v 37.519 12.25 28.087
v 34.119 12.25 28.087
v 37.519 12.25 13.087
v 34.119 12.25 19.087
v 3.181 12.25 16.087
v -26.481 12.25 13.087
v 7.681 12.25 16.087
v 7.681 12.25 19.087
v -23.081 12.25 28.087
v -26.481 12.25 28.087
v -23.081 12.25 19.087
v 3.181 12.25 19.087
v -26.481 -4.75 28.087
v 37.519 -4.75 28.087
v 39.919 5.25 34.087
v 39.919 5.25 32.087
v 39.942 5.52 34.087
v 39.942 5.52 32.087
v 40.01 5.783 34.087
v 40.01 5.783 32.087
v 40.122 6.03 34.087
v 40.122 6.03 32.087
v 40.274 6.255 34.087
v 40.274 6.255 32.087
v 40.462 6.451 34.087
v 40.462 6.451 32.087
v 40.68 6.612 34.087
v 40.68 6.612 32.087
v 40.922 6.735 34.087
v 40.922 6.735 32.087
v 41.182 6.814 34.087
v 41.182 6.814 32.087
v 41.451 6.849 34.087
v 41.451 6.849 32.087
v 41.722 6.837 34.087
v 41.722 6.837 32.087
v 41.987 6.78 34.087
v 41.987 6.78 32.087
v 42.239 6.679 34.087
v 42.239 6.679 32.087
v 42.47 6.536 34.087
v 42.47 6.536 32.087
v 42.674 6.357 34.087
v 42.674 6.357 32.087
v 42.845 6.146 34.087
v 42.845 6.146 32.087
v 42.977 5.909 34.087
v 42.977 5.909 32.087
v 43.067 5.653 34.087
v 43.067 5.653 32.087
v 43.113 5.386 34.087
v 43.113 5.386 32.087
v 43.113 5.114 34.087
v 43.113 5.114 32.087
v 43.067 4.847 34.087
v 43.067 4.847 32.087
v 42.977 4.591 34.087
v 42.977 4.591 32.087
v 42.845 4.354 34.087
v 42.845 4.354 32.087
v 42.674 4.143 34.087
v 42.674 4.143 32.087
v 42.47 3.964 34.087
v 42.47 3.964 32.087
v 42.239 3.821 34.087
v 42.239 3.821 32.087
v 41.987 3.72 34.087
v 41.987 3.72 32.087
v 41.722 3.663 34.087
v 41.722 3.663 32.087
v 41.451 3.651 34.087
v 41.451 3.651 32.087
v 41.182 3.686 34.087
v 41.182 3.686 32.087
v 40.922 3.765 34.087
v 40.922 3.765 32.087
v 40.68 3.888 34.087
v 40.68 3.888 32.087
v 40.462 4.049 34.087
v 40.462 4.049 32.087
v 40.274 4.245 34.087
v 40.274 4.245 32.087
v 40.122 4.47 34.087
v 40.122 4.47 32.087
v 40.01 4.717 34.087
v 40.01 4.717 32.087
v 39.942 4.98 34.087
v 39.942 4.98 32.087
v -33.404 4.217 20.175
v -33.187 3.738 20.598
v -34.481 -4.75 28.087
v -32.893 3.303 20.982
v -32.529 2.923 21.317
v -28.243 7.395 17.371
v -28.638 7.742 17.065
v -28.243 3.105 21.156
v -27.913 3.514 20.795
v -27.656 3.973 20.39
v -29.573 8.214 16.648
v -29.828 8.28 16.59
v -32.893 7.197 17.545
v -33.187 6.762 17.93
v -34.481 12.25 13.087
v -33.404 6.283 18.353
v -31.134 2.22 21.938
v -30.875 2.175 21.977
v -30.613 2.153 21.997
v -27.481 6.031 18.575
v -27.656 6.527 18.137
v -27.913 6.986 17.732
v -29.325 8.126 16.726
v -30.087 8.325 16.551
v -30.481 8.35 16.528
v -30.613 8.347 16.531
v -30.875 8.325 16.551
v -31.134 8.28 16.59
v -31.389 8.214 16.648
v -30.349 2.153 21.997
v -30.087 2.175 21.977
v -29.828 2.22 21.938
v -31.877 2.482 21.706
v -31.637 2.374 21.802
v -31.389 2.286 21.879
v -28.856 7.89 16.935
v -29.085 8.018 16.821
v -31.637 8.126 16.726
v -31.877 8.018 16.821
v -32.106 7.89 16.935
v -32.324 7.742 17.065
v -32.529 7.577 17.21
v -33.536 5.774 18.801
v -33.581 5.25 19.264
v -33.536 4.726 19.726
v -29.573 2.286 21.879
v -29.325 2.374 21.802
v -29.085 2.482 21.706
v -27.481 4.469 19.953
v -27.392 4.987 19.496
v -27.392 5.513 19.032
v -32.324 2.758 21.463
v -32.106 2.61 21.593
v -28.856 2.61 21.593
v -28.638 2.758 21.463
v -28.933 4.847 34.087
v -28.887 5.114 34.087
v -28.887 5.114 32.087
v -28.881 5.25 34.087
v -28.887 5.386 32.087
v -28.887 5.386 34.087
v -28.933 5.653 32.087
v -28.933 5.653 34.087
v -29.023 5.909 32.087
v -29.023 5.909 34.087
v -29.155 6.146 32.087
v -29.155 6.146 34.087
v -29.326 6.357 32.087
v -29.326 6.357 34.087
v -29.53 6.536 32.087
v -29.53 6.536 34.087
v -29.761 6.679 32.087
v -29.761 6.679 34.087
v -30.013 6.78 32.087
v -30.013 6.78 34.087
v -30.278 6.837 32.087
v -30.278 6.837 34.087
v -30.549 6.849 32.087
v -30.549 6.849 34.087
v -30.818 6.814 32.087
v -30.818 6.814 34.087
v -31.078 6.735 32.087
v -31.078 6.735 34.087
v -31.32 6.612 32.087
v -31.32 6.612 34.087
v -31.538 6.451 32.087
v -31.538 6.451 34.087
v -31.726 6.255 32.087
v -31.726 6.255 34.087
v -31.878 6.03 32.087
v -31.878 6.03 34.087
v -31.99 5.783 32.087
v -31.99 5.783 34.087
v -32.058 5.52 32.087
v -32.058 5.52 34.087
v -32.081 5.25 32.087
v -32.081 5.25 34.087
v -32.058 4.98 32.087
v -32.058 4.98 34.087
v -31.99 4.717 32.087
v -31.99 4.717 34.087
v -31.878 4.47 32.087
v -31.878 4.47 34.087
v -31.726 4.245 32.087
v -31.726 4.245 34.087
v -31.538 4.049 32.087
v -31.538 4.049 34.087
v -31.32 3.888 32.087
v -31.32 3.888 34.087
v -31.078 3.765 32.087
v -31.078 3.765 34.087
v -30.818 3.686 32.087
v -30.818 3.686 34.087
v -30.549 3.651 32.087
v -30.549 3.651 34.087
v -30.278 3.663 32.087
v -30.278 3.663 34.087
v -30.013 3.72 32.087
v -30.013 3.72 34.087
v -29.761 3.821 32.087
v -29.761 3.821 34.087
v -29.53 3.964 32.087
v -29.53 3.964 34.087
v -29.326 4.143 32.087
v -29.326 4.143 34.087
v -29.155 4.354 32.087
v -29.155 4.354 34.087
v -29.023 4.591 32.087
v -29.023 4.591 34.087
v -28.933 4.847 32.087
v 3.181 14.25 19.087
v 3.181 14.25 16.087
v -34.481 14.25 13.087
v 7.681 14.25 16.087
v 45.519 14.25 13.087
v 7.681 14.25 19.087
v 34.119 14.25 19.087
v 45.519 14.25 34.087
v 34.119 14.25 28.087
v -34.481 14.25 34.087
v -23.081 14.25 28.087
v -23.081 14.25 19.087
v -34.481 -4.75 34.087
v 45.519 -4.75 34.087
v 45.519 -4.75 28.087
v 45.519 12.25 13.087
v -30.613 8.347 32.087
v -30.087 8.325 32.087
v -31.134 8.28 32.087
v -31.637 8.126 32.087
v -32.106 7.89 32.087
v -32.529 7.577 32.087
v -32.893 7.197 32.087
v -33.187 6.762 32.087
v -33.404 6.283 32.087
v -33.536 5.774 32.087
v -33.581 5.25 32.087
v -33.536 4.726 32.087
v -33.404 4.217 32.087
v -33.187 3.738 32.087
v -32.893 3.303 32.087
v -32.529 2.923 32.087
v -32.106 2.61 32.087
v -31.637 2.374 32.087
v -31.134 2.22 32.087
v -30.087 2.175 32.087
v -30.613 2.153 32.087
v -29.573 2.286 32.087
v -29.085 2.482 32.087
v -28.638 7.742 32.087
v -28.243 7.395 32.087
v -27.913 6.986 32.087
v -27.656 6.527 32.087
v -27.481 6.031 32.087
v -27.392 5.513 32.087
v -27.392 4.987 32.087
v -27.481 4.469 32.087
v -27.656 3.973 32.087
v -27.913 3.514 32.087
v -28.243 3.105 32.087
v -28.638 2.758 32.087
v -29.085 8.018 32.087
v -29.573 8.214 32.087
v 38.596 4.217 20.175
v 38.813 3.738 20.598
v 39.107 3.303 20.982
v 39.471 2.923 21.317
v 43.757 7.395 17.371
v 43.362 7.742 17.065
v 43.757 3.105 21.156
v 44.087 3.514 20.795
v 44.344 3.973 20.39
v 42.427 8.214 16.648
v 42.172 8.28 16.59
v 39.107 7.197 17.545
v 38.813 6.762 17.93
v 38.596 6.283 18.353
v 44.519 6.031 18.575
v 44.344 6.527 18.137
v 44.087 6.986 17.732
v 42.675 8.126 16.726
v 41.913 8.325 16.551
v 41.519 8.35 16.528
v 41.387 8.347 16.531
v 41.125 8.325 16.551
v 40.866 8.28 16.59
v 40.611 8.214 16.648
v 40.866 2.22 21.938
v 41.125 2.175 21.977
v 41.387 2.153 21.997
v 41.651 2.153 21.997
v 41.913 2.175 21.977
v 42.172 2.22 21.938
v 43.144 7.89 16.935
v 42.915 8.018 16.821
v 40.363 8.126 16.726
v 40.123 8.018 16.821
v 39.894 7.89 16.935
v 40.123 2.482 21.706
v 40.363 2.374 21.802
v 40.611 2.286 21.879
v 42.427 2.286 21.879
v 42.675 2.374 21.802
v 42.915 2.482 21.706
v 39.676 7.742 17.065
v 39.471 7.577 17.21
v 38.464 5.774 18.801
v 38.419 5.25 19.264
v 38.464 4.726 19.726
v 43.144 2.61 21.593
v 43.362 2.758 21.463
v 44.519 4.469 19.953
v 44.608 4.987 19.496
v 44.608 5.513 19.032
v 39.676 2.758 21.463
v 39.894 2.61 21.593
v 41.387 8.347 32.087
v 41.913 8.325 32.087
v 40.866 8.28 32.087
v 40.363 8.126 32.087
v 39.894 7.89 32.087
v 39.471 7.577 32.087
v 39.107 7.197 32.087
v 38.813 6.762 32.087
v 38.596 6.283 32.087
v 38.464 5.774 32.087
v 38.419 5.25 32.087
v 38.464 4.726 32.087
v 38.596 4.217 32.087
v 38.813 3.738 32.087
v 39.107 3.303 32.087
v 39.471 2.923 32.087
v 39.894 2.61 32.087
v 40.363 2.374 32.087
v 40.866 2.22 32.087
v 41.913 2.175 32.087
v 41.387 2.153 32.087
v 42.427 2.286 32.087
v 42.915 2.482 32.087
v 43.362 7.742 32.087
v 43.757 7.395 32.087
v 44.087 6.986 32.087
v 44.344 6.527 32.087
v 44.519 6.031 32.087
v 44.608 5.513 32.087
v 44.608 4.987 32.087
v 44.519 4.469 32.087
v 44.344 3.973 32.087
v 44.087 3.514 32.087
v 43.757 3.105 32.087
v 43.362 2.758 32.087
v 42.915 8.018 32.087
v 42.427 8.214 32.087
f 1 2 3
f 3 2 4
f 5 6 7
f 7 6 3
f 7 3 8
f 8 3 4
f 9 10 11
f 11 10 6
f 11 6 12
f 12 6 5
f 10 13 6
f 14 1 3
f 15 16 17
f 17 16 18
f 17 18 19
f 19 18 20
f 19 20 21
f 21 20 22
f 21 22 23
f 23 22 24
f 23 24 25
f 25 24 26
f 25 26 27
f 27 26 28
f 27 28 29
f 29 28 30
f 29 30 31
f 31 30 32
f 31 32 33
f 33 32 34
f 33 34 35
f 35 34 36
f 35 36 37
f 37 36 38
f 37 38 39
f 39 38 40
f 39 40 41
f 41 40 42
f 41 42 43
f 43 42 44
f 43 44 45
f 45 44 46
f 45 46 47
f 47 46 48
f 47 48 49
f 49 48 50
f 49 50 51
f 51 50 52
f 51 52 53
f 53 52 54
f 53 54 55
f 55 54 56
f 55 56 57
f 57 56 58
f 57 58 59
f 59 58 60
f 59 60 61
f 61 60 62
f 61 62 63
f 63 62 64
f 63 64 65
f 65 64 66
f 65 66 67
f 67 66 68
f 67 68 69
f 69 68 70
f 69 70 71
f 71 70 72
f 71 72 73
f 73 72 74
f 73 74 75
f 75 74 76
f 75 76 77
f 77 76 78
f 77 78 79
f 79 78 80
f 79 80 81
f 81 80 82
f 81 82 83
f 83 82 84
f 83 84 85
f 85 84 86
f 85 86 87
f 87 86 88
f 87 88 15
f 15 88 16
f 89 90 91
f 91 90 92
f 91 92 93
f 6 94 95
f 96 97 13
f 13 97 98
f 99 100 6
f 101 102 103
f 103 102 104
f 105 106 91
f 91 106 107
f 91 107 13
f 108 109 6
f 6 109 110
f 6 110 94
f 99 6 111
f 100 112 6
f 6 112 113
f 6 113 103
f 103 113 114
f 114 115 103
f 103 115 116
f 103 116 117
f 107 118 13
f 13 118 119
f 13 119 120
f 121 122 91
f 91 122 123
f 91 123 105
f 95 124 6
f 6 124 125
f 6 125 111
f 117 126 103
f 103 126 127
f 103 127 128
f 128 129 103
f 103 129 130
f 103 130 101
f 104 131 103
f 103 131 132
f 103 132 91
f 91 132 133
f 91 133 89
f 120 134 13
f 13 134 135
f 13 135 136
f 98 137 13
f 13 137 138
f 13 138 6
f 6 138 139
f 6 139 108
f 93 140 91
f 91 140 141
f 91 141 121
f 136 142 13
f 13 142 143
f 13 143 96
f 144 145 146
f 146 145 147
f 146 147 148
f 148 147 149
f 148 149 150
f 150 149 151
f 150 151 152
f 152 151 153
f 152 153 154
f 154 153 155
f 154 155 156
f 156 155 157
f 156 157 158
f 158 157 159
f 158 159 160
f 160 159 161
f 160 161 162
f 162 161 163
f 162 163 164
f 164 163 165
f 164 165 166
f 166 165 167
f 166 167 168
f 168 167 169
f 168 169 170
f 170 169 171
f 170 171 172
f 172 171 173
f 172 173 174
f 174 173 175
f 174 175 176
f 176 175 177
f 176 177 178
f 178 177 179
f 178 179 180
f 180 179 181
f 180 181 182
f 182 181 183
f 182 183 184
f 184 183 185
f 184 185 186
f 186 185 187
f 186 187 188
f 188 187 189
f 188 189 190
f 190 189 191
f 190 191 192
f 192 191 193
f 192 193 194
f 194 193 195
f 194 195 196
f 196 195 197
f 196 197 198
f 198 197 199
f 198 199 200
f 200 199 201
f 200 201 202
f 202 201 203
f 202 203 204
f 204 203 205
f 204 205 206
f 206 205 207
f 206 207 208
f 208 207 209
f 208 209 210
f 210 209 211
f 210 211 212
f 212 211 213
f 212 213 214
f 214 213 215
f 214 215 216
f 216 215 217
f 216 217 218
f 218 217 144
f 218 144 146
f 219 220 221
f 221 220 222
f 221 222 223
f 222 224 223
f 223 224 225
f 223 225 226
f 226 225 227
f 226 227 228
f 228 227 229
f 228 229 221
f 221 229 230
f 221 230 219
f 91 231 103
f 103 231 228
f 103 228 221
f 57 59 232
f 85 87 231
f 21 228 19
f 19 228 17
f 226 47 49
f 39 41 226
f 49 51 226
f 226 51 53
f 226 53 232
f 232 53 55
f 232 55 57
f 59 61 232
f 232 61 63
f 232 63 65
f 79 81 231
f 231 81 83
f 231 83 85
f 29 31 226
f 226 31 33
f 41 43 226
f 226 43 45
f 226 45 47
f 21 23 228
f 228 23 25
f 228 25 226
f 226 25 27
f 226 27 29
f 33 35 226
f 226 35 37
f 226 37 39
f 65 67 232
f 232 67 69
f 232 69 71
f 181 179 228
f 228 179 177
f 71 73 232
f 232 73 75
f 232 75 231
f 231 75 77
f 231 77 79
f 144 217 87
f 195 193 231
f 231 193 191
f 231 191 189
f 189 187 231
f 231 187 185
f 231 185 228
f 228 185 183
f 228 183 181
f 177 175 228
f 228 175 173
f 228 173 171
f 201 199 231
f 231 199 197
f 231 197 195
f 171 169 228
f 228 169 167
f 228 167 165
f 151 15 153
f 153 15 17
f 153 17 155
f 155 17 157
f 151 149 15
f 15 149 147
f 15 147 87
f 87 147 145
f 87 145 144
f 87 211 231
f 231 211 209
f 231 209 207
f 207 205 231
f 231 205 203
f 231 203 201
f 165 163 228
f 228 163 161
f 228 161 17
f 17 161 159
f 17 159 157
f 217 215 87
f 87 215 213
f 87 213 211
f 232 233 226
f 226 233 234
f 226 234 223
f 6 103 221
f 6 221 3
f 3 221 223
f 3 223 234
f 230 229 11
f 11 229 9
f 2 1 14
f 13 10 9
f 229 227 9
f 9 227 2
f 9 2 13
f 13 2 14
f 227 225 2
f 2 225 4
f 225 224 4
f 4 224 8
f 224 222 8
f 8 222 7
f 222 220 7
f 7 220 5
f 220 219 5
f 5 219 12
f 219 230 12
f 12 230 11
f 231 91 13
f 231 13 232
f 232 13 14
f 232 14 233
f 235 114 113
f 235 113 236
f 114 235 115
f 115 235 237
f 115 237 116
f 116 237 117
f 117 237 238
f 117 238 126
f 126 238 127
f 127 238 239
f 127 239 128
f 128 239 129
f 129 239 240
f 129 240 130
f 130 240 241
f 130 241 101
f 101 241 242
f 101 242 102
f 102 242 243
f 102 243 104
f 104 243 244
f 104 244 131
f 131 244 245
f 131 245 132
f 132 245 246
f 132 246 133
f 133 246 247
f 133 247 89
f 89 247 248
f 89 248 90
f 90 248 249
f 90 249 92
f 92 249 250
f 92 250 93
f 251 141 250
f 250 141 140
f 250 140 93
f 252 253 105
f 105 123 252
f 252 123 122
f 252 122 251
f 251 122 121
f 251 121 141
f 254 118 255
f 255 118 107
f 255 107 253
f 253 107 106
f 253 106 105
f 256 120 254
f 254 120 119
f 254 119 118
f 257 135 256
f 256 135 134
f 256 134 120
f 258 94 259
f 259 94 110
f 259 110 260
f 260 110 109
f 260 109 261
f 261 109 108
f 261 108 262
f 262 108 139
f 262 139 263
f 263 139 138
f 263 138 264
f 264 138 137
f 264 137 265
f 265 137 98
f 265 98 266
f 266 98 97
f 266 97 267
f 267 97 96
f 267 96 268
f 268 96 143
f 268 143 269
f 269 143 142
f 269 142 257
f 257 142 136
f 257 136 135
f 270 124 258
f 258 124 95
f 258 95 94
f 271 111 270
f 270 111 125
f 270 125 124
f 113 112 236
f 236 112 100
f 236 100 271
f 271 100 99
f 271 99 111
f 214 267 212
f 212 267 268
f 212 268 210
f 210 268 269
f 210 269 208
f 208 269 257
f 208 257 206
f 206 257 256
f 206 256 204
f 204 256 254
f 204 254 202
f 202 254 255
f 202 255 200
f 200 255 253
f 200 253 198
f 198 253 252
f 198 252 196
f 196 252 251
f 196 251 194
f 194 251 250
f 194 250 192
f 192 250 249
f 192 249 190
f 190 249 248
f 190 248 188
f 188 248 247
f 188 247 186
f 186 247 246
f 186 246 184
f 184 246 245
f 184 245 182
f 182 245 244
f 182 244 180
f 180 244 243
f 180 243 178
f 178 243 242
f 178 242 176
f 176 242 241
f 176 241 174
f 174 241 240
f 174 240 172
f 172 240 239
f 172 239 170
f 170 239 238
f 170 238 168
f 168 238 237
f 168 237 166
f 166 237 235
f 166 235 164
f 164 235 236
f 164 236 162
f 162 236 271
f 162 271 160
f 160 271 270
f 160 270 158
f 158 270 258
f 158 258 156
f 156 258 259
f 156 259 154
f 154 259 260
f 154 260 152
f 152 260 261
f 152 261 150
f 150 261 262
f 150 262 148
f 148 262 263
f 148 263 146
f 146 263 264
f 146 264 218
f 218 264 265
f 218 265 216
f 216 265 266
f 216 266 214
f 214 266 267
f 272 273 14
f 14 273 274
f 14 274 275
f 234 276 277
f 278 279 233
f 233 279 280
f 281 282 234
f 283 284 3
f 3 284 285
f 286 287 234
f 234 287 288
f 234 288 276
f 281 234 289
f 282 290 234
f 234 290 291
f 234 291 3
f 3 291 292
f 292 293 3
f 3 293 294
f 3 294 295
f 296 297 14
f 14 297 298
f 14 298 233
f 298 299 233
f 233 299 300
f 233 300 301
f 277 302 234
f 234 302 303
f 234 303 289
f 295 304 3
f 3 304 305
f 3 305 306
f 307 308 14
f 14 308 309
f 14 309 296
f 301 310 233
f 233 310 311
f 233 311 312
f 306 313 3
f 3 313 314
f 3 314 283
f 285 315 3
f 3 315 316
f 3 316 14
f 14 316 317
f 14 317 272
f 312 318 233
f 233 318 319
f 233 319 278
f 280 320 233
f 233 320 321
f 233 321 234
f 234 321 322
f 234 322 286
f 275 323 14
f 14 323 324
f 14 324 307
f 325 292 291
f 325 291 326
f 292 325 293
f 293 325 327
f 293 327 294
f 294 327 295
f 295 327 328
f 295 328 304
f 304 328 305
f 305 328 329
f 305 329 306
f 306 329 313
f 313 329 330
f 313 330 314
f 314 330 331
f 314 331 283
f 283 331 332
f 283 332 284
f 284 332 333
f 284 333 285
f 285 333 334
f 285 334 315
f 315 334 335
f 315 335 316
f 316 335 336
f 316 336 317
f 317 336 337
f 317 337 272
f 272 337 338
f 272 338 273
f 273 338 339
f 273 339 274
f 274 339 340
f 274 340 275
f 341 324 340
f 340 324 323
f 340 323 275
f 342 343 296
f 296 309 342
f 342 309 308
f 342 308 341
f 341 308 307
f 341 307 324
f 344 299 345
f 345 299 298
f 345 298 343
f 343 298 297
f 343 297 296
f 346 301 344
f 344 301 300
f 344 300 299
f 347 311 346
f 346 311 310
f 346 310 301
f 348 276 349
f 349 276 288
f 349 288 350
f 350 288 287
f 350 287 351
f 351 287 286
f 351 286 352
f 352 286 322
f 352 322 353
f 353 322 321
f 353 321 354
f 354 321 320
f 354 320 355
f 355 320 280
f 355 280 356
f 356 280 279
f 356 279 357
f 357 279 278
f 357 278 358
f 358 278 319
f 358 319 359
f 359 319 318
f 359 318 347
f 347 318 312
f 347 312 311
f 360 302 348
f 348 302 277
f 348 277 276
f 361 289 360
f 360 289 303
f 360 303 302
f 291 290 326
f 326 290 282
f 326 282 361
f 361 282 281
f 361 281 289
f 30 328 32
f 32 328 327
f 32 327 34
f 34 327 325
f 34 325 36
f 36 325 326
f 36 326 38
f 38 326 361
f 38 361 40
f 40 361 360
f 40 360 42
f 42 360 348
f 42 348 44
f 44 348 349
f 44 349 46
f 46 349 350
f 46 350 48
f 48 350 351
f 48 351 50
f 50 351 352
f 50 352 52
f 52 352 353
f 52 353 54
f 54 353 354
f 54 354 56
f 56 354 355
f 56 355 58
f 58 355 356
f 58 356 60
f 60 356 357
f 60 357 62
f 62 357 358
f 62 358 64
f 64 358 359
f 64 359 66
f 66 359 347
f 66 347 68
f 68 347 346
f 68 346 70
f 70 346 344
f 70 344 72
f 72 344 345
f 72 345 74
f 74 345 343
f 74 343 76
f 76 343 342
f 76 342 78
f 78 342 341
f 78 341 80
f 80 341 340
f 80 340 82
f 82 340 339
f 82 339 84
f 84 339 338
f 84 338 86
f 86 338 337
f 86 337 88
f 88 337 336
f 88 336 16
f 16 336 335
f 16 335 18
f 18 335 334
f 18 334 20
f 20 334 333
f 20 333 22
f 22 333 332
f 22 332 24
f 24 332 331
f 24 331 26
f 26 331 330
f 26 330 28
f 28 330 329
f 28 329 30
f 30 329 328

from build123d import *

# Parameters (mm, degrees)
SKETCH1_W           = 80
SKETCH1_H           = 21
BOSS_EXTRUDE1_DEPTH = 2
BOSS_EXTRUDE2_DEPTH = 8
SKETCH3_R           = 1.6
CUT_EXTRUDE1_DEPTH  = 59.625759514
CUT_EXTRUDE2_START  = 32.087294298
SKETCH3_5_R         = 3.1
SKETCH3_5_R_2       = 1.6
CUT_EXTRUDE2_DEPTH  = 32.087294298
SKETCH4_W           = 64
SKETCH4_H           = 6
BOSS_EXTRUDE5_DEPTH = 17


with BuildPart() as part:
    # Sketch1 → Boss-Extrude1 (new body)
    with BuildSketch(Plane(origin=(0, 12.25, 0), x_dir=(1, 0, 0), z_dir=(0, 1, 0))):
        with Locations((5.518936126, -23.587294298)):
            Rectangle(SKETCH1_W, SKETCH1_H)
        Polygon((-23.081063874, -28.087294298), (34.118936126, -28.087294298), (34.118936126, -19.087294298), (7.681087054, -19.087294298), (7.681087054, -16.087294298), (3.181087054, -16.087294298), (3.181087054, -19.087294298), (-23.081063874, -19.087294298), align=None, mode=Mode.SUBTRACT)
    extrude(amount=BOSS_EXTRUDE1_DEPTH)

    # Sketch2 → Boss-Extrude2 (add)
    with BuildSketch(Plane.ZY.offset(34.481063874)):
        Polygon((34.087294298, 12.25), (34.087294298, -4.75), (28.087294298, -4.75), (13.087294298, 12.25), align=None)
    boss_extrude2 = extrude(amount=-BOSS_EXTRUDE2_DEPTH)

    # Sketch3 → Cut-Extrude1 (cut, symmetric)
    with BuildSketch(Plane.XY):
        with Locations(Location((-30.481063874, 5.25, 0), (0, 0, 90))):
            Circle(SKETCH3_R)
    cut_extrude1 = extrude(amount=CUT_EXTRUDE1_DEPTH, both=True, mode=Mode.SUBTRACT)

    # Sketch3<5> → Cut-Extrude2 (cut)
    with BuildSketch(Plane.XY.offset(CUT_EXTRUDE2_START)):
        with Locations(Location((-30.481063874, 5.25, 0), (0, 0, 180))):
            Circle(SKETCH3_5_R)
        with Locations(Location((-30.481063874, 5.25, 0), (0, 0, 180))):
            Circle(SKETCH3_5_R_2, mode=Mode.SUBTRACT)
    cut_extrude2 = extrude(amount=-CUT_EXTRUDE2_DEPTH, mode=Mode.SUBTRACT)

    # Mirror1: Boss-Extrude2, Cut-Extrude1, Cut-Extrude2 across plane
    add(boss_extrude2.mirror(Plane.ZY.offset(-5.518936126)))
    add(cut_extrude1.mirror(Plane.ZY.offset(-5.518936126)), mode=Mode.SUBTRACT)
    add(cut_extrude2.mirror(Plane.ZY.offset(-5.518936126)), mode=Mode.SUBTRACT)

    # Sketch4 → Boss-Extrude5 (add)
    with BuildSketch(Plane.XZ.offset(-12.25)):
        with Locations((5.518936126, 31.087294298)):
            Rectangle(SKETCH4_W, SKETCH4_H)
    extrude(amount=BOSS_EXTRUDE5_DEPTH)


solid = part.part
